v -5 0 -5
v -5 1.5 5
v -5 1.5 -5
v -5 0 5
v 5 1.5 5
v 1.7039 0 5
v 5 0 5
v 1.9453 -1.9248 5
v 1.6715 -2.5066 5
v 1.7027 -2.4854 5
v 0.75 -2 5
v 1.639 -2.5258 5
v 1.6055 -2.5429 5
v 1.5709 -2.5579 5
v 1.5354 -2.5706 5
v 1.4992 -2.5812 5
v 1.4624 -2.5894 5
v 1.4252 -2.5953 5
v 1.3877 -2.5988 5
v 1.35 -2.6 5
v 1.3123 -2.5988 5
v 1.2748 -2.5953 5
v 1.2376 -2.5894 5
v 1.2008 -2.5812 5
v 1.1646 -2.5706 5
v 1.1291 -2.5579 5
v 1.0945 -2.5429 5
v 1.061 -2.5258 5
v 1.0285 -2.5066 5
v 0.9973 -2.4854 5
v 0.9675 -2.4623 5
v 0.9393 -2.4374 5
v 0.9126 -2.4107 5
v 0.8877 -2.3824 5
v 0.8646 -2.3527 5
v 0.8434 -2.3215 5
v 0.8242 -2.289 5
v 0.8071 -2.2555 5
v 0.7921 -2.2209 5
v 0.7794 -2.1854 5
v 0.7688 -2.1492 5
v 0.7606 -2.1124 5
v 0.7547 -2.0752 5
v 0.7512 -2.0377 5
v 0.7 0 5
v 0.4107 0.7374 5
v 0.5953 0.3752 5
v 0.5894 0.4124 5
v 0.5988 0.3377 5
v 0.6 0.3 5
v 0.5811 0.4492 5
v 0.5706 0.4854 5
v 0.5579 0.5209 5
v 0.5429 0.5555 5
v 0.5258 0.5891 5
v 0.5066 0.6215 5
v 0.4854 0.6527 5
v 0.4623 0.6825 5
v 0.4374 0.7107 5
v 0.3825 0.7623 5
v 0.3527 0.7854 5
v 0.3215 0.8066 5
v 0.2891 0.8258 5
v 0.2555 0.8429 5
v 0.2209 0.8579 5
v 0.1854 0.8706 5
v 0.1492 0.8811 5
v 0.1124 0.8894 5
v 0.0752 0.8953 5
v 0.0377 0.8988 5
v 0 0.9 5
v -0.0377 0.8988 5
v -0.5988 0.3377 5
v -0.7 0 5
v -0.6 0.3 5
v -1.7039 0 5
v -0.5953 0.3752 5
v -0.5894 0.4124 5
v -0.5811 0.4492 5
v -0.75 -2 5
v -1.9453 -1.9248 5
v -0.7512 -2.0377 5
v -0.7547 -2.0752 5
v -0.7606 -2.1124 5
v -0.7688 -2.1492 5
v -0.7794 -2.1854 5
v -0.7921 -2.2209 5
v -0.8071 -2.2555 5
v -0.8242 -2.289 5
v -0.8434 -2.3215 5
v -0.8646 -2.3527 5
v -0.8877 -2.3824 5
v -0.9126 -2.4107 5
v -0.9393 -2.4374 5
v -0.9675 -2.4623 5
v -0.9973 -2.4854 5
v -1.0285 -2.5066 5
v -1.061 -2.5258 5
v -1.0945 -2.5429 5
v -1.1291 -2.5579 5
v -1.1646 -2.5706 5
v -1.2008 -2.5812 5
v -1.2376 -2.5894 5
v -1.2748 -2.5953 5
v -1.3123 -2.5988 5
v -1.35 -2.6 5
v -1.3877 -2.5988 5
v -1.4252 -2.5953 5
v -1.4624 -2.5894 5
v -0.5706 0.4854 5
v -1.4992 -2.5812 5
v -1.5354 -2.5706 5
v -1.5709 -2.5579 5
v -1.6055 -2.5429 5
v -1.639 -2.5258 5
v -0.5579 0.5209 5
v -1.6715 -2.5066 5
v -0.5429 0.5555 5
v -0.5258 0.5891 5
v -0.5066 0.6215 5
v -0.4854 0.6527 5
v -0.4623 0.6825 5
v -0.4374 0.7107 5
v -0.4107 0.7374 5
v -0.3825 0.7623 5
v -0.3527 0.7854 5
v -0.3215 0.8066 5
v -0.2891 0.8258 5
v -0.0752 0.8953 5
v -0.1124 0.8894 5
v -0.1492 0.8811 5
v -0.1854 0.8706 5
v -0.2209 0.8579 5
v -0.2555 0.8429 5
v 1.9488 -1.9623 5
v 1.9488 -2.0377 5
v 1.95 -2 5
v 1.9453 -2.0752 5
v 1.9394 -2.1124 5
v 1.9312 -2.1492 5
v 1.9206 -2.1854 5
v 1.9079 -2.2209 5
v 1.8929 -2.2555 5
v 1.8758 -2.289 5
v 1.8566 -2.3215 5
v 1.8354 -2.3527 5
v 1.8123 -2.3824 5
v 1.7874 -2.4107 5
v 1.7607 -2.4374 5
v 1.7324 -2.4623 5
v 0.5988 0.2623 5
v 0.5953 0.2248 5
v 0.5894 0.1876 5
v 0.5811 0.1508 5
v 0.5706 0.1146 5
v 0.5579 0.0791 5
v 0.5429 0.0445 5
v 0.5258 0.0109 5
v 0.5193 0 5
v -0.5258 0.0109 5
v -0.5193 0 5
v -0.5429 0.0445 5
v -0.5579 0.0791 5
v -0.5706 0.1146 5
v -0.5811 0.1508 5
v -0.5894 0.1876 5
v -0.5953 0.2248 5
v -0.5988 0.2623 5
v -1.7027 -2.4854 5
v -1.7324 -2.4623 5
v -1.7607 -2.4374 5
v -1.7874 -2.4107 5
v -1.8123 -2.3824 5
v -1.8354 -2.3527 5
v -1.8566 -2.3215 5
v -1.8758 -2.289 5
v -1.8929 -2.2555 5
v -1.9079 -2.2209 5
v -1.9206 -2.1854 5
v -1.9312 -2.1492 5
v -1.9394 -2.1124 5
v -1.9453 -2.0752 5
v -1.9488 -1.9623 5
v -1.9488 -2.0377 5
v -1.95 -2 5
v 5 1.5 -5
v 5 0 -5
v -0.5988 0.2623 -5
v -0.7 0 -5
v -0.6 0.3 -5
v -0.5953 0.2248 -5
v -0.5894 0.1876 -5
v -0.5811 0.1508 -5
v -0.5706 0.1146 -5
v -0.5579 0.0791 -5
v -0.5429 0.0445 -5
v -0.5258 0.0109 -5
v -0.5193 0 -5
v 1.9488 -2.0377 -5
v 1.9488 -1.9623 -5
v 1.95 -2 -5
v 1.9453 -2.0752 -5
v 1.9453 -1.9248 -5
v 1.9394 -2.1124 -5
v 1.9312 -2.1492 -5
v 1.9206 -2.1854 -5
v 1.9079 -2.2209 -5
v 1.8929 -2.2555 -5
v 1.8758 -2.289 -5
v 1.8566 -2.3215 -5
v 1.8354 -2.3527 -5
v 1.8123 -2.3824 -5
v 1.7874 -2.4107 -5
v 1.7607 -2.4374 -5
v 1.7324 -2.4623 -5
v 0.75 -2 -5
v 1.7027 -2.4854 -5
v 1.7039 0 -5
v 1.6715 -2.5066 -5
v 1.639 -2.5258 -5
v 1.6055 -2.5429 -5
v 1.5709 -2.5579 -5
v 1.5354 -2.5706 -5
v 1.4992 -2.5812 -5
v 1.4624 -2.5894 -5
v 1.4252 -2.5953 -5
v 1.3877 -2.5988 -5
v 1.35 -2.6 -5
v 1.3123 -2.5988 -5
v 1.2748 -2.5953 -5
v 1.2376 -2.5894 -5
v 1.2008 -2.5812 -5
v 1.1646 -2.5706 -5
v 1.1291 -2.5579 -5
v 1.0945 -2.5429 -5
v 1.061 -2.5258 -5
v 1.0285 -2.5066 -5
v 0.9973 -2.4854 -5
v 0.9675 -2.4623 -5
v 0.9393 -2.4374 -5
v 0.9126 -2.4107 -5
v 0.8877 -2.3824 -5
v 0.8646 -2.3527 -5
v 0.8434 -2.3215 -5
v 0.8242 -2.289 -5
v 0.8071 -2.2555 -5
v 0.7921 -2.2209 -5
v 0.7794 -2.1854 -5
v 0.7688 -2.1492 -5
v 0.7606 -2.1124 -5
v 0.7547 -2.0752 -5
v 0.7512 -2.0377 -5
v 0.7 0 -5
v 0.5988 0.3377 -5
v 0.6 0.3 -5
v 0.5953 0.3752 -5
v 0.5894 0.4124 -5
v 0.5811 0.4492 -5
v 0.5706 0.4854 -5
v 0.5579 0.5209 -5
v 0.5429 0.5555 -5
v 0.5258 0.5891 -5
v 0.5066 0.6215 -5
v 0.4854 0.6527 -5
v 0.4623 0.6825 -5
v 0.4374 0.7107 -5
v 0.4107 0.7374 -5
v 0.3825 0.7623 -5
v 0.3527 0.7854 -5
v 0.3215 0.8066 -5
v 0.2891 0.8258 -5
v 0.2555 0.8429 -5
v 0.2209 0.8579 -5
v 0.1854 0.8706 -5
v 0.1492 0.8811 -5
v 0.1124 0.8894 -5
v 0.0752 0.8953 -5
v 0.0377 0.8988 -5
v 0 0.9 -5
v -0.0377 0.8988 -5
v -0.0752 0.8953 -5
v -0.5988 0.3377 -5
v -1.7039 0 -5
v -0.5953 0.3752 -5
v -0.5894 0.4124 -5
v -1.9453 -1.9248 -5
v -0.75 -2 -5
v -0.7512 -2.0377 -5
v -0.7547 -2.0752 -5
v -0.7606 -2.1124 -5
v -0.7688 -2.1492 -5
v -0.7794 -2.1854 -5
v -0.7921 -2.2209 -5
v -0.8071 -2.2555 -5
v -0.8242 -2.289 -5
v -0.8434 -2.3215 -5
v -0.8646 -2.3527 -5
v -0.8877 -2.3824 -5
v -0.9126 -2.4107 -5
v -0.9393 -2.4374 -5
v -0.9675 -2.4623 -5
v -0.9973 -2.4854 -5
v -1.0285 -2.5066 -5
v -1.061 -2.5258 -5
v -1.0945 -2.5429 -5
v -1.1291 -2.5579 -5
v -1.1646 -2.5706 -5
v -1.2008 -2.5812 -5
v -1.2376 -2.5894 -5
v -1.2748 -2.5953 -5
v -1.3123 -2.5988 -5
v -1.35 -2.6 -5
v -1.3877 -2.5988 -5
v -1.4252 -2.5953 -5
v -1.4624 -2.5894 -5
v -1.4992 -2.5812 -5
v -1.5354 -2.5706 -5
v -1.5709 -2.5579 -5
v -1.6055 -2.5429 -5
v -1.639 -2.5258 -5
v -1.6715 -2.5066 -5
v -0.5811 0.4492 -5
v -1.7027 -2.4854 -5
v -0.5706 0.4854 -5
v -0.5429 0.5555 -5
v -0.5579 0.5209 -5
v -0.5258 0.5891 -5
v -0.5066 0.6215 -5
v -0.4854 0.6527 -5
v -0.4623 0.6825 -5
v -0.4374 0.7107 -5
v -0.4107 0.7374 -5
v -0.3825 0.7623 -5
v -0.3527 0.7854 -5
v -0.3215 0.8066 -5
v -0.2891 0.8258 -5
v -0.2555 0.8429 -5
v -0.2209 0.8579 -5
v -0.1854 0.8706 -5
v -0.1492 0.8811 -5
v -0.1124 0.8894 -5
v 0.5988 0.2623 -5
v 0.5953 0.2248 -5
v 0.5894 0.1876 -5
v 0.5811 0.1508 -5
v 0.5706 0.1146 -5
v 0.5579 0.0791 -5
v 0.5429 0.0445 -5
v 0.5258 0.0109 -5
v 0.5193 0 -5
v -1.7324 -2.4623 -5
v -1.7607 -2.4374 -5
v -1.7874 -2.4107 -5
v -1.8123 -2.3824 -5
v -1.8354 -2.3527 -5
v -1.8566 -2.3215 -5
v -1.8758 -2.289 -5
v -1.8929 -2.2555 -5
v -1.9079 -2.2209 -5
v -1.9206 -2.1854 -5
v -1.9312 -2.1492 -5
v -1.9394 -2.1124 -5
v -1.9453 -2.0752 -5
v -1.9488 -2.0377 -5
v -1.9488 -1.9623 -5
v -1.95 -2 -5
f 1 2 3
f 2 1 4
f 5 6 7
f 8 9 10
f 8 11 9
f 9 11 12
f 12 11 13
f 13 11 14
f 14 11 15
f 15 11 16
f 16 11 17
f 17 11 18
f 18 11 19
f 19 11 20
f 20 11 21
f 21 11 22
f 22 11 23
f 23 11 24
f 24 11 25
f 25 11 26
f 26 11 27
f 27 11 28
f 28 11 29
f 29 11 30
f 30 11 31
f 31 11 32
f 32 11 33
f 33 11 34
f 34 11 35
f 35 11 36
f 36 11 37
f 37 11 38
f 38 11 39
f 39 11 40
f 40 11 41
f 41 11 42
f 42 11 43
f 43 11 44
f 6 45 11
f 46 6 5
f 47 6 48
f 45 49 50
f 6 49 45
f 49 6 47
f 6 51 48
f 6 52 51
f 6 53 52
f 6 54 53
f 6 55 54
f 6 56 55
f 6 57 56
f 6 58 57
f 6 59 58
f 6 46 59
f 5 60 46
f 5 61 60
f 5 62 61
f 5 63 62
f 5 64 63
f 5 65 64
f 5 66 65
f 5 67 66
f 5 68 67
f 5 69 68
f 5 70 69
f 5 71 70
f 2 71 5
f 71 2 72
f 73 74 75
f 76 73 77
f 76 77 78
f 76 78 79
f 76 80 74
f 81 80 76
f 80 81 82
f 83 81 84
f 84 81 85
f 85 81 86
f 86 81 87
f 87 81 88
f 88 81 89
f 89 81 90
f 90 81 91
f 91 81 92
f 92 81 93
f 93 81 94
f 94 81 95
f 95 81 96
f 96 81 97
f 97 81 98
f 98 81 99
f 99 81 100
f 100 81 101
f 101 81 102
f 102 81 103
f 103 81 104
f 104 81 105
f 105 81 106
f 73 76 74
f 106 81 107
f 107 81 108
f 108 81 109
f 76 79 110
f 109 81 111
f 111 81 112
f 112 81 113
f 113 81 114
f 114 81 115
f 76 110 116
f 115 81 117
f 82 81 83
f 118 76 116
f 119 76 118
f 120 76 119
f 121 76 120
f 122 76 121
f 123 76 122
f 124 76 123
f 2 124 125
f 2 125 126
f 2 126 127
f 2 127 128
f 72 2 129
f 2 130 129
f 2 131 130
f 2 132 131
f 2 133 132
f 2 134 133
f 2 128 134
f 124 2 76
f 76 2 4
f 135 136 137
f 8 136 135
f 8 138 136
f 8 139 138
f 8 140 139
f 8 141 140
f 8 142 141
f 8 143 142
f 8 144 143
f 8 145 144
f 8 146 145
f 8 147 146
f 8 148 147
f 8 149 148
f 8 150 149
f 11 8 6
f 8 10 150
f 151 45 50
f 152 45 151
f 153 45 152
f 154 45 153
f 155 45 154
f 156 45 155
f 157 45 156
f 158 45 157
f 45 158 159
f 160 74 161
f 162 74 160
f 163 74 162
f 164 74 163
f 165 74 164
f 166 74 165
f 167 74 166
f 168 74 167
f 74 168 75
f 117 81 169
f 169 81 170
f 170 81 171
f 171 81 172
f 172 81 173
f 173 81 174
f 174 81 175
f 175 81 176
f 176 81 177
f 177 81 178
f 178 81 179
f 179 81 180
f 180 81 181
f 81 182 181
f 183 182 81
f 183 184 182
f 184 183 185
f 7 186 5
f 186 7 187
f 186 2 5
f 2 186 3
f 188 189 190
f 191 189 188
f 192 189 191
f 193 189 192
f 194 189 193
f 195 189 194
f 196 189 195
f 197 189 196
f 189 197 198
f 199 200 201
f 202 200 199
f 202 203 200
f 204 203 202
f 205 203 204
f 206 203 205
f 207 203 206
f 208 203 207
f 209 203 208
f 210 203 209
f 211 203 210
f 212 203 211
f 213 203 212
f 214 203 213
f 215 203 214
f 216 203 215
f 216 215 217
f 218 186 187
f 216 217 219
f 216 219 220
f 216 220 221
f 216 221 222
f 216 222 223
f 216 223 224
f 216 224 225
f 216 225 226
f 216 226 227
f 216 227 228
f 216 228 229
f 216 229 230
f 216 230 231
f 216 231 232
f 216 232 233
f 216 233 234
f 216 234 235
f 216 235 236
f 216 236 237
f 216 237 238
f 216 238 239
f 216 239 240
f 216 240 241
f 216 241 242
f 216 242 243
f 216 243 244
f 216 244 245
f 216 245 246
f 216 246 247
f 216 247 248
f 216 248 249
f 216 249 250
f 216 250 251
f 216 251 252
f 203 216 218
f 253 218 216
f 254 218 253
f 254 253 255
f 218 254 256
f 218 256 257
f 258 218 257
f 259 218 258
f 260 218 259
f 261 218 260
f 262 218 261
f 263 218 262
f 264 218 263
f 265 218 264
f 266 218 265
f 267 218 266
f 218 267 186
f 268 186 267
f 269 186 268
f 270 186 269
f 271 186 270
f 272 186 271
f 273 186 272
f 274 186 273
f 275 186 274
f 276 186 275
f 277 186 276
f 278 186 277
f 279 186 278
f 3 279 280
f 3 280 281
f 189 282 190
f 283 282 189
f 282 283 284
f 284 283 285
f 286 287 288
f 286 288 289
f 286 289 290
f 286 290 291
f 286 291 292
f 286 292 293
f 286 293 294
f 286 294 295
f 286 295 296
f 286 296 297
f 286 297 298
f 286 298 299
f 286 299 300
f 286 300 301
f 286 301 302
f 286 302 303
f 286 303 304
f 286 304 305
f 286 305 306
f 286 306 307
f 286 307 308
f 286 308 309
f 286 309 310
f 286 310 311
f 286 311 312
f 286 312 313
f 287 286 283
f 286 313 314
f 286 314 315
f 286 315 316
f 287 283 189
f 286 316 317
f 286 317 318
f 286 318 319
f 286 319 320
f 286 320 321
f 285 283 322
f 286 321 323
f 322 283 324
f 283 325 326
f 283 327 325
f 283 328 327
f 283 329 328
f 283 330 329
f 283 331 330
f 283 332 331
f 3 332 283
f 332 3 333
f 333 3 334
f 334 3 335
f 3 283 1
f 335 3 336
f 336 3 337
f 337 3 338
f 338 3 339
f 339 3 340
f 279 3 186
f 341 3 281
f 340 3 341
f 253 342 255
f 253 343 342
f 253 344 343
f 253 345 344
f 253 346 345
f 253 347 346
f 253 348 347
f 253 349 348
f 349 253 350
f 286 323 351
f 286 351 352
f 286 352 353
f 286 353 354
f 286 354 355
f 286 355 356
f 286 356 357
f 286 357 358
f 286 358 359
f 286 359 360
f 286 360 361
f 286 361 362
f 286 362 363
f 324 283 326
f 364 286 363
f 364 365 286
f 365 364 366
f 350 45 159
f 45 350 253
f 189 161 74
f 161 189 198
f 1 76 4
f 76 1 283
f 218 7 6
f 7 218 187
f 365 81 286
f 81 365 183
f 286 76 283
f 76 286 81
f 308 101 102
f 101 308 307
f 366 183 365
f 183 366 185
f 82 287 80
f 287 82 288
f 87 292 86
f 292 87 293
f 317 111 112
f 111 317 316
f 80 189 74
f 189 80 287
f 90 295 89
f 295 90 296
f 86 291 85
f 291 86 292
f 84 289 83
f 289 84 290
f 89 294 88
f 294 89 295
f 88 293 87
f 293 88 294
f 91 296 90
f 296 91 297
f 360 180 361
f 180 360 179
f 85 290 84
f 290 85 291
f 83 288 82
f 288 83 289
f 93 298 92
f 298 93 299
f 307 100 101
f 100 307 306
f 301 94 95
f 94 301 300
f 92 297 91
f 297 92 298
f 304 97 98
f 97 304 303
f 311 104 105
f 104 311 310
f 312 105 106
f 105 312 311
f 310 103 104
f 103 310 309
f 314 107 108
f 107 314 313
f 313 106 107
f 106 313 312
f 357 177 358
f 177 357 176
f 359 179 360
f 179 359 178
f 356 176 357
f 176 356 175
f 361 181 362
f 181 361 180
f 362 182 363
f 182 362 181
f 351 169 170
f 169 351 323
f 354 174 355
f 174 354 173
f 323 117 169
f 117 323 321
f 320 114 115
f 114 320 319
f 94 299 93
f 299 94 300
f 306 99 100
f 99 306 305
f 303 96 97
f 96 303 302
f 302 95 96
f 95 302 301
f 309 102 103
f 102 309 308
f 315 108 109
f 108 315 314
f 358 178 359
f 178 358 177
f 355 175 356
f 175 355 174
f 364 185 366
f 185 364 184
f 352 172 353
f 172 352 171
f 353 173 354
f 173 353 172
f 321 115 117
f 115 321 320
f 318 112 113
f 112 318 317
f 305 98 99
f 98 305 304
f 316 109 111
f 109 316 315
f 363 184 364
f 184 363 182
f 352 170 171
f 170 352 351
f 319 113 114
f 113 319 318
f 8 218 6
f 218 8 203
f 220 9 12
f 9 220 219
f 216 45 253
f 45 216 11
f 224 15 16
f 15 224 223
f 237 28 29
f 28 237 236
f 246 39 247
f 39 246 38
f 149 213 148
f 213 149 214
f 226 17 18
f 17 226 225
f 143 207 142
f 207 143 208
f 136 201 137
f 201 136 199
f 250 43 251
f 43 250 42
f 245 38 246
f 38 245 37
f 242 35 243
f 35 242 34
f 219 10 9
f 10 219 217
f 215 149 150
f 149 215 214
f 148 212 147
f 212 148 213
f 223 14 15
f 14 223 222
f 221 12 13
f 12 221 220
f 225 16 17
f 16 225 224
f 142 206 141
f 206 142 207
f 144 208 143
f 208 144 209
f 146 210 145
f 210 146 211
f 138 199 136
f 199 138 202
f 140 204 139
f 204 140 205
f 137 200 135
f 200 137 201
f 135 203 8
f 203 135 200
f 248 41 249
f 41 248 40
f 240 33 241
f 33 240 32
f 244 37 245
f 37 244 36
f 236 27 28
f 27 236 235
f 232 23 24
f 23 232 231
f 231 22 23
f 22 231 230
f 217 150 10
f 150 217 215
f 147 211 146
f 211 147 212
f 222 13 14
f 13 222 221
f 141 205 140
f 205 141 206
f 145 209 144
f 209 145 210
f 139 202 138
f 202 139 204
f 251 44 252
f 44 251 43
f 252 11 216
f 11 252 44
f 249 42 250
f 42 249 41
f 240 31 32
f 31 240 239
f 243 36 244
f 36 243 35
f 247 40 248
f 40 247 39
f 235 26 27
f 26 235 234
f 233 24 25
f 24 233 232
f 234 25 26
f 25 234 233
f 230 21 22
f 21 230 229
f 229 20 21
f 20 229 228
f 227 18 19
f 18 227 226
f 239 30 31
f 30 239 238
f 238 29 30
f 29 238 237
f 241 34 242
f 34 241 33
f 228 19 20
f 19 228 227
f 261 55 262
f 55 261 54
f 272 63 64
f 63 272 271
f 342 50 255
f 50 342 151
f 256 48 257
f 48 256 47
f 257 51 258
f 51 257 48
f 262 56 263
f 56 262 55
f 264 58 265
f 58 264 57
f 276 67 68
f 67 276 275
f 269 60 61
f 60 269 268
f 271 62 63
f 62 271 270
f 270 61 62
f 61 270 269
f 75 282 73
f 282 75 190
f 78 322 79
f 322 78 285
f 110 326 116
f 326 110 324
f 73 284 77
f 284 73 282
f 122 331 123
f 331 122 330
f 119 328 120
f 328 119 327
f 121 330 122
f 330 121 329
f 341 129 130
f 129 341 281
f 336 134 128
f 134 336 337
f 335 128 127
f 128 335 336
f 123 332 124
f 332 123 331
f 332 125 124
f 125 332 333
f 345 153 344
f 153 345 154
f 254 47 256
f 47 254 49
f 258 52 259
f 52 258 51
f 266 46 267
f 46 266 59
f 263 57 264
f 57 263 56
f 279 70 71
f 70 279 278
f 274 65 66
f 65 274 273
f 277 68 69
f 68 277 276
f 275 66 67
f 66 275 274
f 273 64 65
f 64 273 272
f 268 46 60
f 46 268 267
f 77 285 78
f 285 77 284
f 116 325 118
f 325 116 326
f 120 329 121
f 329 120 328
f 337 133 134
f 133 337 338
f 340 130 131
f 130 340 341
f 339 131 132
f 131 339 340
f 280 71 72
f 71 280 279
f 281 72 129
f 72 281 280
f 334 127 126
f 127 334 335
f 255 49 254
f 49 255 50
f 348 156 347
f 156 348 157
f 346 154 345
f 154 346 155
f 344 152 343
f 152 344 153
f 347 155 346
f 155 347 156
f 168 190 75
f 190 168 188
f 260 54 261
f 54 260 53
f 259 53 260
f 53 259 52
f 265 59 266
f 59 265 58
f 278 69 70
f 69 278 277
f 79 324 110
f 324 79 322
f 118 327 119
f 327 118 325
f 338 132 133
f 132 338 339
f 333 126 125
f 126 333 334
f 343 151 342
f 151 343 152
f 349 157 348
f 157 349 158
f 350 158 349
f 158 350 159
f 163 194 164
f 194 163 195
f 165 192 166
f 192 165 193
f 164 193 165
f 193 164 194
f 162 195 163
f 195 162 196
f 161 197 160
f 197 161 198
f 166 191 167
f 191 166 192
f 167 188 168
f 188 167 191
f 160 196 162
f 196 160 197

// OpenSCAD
$fn=100;
plate_thickness=1.5;

module clip(x){
    difference(){
        union(){
            translate([0,plate_thickness/2,0]) cube([10,plate_thickness,x],center=true);
        
            hull(){
                    translate([-1.2,0,0])cylinder(h=x,r=0.5,center=true);
                    translate([-2.7/2,-2,0])cylinder(h=x,r=0.6,center=true);
            }
            hull(){
                    translate([1.2,0,0])cylinder(h=x,r=0.5,center=true);
                    translate([2.7/2,-2,0])cylinder(h=x,r=0.6,center=true);
            } 
        } 
        translate([0,0.3,0])cylinder(h=x+1,r=0.6,center=true);
    }
}

clip(10); //lenght

%translate ([0,-7.5,0])color ("DeepSkyBlue") linear_extrude(file ="TL-400-0101-002.dxf",height =30, center = true, convexity = 10, twist = 0); //OpenBeam Stream
